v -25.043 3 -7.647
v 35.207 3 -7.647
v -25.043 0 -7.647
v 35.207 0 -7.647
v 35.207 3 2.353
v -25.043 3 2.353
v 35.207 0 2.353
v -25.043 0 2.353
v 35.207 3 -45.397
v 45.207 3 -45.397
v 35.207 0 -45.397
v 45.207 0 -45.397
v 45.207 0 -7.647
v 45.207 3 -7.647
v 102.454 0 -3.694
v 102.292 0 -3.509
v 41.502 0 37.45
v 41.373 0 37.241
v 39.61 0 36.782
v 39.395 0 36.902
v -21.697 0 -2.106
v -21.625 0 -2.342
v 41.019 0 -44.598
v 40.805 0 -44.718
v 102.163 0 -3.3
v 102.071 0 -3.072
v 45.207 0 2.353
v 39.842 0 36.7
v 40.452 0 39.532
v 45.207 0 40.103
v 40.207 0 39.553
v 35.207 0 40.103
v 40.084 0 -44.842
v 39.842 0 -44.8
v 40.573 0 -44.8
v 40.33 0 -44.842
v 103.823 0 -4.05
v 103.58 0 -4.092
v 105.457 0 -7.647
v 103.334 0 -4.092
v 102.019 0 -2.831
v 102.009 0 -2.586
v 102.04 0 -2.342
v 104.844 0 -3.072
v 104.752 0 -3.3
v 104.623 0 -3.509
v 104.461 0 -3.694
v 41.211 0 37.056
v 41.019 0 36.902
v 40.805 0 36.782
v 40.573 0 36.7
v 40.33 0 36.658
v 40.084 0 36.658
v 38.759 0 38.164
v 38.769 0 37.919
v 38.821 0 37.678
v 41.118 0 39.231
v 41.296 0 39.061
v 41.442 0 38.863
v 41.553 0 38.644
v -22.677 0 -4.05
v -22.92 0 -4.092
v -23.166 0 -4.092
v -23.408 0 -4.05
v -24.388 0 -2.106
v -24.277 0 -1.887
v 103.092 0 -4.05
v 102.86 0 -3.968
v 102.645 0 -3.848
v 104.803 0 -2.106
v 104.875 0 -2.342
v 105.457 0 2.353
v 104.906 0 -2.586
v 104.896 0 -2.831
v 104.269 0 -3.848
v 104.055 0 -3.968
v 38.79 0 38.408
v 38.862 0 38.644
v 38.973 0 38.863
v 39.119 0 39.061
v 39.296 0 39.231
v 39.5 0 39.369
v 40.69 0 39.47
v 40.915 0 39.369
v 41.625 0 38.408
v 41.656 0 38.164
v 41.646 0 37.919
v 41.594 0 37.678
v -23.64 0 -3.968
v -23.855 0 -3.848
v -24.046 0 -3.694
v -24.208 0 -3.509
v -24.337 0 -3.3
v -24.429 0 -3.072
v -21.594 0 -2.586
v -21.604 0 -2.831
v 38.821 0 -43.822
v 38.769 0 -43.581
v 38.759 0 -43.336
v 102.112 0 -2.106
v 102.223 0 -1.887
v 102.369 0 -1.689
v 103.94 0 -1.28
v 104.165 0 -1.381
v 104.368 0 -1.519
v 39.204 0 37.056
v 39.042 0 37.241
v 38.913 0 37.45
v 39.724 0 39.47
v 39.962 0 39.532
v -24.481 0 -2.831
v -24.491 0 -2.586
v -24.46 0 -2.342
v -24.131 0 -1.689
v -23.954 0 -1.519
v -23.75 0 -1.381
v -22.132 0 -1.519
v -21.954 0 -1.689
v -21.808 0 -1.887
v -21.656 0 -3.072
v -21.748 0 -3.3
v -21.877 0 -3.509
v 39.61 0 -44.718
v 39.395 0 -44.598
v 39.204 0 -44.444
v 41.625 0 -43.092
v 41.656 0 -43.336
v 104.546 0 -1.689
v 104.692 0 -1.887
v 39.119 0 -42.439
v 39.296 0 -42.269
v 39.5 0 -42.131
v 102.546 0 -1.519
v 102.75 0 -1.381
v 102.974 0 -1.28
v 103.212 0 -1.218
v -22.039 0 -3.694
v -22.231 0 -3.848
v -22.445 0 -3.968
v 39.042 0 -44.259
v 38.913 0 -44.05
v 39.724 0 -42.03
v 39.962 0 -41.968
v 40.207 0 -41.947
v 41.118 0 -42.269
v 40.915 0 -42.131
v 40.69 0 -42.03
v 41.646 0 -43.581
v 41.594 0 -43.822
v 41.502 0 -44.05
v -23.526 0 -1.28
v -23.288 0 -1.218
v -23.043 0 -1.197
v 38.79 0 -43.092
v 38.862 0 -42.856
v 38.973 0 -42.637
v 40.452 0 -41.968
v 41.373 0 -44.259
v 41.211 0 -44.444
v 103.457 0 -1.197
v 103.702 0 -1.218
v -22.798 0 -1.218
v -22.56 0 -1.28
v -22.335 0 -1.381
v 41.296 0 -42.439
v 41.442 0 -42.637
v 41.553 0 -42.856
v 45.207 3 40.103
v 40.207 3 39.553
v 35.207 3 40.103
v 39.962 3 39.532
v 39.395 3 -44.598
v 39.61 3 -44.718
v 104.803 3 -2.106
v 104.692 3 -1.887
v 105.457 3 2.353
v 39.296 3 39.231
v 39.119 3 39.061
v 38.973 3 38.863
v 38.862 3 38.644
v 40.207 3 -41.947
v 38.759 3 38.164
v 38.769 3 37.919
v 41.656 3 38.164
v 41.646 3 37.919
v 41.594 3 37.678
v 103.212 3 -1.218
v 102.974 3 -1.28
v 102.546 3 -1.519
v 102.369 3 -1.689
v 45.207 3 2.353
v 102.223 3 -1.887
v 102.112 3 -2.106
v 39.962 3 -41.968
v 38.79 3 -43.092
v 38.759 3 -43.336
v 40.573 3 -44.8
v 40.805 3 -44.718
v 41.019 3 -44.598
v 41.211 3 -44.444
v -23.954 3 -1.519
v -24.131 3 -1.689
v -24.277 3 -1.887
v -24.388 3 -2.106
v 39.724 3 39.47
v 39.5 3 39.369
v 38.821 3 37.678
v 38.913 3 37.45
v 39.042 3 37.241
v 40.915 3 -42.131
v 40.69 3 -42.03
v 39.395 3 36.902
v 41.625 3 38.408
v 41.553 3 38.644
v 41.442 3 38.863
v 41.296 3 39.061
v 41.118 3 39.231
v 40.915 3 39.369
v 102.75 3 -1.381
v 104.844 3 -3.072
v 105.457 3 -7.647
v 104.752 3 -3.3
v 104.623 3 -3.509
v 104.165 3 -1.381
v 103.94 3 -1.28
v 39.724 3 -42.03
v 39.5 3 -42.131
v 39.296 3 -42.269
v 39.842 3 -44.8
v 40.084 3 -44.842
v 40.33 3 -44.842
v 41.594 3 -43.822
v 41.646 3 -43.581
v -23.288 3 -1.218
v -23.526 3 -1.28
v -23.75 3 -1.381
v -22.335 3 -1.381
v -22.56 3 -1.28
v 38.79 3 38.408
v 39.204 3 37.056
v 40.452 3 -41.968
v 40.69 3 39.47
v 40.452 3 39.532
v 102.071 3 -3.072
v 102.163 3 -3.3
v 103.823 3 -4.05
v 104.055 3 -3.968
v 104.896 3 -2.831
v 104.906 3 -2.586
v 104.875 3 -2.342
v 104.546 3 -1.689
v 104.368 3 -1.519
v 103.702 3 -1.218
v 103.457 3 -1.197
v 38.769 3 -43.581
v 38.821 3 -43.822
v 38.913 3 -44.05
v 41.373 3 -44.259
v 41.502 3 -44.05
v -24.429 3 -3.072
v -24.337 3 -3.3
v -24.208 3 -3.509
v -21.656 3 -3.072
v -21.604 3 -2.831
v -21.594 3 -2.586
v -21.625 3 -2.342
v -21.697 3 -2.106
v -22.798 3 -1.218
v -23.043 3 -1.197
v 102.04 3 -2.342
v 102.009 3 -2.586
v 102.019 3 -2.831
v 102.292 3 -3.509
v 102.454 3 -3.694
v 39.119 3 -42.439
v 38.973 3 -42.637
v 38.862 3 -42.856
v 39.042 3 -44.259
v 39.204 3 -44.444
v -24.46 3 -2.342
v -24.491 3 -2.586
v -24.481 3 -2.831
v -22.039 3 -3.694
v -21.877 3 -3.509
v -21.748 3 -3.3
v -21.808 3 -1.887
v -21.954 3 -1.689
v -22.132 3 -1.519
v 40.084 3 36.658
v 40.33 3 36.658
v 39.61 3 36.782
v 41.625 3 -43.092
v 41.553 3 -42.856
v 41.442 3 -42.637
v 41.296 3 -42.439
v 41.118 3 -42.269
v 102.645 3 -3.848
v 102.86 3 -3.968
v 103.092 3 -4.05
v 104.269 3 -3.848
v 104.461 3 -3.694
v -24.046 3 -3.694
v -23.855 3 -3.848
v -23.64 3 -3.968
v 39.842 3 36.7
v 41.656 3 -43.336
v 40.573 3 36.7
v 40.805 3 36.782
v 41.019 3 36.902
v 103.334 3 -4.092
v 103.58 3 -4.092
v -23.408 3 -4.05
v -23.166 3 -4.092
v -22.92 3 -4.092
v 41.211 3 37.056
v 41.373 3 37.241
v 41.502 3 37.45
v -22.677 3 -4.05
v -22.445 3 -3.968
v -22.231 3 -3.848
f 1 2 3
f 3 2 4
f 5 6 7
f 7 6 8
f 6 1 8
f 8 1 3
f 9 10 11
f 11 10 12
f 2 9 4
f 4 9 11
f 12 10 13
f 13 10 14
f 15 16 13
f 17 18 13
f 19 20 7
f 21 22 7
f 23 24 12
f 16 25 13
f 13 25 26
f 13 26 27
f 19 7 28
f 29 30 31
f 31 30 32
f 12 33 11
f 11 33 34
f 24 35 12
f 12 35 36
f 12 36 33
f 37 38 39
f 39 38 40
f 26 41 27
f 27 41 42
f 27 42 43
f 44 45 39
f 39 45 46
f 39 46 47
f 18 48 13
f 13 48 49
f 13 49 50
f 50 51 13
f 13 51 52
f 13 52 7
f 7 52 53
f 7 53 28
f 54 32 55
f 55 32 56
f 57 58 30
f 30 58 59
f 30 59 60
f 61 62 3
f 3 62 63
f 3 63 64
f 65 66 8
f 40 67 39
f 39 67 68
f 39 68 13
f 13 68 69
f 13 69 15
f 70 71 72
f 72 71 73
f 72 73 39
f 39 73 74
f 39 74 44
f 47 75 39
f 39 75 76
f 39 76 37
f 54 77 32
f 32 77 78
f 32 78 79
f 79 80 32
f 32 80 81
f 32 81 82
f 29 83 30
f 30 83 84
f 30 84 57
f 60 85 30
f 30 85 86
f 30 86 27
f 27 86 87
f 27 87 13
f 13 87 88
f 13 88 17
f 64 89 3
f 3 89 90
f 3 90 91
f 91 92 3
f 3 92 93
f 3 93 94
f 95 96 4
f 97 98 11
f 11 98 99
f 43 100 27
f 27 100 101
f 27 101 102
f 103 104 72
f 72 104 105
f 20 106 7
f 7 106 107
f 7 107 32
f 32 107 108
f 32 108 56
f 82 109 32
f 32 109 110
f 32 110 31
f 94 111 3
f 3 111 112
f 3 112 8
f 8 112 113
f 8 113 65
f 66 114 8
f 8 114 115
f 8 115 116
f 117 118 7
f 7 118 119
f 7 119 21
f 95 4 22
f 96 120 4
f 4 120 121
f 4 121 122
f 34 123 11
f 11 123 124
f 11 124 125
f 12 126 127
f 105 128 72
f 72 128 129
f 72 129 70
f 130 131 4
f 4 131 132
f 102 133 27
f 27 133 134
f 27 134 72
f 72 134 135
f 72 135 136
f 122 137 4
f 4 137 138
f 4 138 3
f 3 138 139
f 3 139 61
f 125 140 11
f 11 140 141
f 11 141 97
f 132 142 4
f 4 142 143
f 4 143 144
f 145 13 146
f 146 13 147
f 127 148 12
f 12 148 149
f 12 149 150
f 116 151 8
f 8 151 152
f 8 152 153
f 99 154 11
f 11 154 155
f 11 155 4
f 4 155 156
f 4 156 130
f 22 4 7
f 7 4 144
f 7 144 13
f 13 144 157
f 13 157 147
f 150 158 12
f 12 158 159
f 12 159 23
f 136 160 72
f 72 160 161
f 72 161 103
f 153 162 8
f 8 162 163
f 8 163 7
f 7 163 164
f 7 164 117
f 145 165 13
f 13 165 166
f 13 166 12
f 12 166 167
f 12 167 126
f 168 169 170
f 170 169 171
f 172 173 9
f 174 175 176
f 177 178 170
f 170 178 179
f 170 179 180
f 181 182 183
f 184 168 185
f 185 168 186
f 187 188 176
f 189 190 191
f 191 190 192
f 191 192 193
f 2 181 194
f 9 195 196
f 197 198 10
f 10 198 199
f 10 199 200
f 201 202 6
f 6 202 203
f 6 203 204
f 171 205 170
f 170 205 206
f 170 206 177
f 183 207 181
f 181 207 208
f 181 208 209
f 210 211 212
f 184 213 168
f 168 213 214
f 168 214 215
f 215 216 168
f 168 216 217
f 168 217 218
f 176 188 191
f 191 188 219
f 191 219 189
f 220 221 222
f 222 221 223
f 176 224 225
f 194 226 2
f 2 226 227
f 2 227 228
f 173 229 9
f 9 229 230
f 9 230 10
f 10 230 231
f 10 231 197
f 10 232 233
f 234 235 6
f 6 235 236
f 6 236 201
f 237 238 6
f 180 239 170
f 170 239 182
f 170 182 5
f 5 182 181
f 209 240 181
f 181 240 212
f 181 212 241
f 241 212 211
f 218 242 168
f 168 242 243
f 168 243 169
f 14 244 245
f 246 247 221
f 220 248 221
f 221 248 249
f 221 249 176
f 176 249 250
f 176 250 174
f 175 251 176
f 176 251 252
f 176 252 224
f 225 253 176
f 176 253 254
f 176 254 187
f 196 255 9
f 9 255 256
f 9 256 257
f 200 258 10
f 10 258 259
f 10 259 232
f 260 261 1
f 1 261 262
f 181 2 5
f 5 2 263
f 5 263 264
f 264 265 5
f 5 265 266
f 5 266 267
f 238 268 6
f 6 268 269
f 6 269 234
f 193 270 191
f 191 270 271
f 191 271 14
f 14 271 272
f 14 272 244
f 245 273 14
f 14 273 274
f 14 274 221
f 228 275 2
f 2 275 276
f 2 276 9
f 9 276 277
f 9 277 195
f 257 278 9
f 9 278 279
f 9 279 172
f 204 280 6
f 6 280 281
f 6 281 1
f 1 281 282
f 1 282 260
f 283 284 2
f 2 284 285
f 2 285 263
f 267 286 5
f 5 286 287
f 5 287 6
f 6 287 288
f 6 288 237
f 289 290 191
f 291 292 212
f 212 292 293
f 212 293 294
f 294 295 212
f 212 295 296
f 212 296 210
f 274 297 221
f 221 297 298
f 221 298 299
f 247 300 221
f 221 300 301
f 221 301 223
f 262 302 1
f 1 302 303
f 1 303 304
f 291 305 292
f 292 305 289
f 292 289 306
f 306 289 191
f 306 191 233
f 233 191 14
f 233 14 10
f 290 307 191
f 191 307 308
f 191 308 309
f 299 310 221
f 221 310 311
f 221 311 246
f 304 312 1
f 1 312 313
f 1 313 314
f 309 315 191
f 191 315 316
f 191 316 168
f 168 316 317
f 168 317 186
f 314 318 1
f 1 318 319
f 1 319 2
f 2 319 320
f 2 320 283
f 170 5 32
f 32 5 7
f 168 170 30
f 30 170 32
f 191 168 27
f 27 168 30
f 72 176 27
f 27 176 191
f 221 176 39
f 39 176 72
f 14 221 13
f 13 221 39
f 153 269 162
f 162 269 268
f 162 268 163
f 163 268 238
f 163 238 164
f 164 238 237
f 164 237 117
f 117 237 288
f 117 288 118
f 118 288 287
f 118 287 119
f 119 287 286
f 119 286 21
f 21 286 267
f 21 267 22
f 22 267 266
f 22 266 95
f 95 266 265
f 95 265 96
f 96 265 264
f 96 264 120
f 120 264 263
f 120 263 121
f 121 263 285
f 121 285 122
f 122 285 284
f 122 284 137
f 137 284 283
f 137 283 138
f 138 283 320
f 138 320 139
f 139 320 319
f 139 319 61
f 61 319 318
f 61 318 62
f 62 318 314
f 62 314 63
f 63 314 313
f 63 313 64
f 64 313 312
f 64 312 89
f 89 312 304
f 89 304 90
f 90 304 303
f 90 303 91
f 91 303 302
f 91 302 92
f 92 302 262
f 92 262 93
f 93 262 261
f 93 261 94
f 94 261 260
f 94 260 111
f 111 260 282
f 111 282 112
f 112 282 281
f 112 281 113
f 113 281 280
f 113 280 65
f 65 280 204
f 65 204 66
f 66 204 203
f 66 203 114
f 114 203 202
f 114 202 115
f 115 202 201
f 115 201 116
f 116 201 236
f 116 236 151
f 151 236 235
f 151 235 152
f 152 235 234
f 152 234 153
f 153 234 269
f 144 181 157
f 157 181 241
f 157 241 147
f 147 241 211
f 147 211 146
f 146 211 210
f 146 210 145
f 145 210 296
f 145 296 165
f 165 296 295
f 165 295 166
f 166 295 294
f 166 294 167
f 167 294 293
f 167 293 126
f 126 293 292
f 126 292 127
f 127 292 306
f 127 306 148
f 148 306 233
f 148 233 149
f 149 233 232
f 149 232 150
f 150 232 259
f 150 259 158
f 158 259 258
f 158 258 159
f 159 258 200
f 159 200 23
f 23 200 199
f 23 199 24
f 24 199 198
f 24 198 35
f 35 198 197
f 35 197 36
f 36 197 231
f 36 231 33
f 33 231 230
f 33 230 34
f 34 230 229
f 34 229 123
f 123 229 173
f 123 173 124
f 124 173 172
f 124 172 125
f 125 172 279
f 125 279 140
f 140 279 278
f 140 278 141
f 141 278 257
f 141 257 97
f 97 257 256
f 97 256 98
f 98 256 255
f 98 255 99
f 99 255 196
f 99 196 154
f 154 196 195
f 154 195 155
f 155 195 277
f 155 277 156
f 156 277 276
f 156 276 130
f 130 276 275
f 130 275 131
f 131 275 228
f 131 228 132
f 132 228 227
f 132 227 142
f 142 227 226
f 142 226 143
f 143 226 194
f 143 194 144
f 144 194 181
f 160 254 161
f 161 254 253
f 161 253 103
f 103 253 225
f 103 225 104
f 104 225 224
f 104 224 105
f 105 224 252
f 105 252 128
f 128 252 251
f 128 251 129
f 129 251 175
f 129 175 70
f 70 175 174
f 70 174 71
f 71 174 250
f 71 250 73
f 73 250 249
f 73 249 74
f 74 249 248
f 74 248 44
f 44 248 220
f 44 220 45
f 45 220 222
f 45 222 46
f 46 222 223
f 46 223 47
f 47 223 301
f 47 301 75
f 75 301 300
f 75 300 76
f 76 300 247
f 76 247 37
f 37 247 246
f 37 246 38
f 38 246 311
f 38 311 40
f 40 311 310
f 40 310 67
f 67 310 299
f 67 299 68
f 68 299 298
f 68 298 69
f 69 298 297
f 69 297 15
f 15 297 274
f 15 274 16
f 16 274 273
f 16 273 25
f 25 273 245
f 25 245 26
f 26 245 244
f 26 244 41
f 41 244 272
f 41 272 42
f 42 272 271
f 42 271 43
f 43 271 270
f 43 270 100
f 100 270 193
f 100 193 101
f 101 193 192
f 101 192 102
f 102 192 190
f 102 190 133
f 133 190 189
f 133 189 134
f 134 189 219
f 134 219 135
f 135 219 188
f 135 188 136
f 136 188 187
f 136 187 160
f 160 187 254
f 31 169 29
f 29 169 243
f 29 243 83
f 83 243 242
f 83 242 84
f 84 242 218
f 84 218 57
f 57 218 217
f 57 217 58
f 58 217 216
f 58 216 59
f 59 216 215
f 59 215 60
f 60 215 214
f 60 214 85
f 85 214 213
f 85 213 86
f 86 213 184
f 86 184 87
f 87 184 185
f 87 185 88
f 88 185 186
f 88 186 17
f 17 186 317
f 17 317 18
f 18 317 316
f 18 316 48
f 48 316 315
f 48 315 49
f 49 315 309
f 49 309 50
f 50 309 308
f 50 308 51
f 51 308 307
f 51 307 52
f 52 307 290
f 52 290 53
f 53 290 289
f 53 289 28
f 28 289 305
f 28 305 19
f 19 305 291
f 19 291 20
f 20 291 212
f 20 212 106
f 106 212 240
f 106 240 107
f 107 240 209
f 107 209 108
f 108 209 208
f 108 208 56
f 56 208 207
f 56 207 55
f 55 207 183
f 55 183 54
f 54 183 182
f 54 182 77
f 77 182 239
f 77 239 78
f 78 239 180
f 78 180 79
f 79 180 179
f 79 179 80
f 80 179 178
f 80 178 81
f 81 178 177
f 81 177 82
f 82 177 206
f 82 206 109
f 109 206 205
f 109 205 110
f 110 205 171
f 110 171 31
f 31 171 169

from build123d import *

# Parameters (mm, degrees)
SKETCH1_W                  = 130.5
SKETCH1_H                  = 10
SKETCH1_W_2                = 10
SKETCH1_H_2                = 85.5
BOSS_EXTRUDE1_DEPTH        = 3
M2_5_CLEARANCE_HOLE1_D     = 2.9
M2_5_CLEARANCE_HOLE1_DEPTH = 3
M2_5_CLEARANCE_HOLE1_TIP   = 0.871247898
M2_5_CLEARANCE_HOLE2_D     = 2.9
M2_5_CLEARANCE_HOLE2_DEPTH = 3
M2_5_CLEARANCE_HOLE2_TIP   = 0.871247898
M2_5_CLEARANCE_HOLE3_D     = 2.9
M2_5_CLEARANCE_HOLE3_DEPTH = 3
M2_5_CLEARANCE_HOLE3_TIP   = 0.871247898
M2_5_CLEARANCE_HOLE4_D     = 2.9
M2_5_CLEARANCE_HOLE4_DEPTH = 3
M2_5_CLEARANCE_HOLE4_TIP   = 0.871247898


with BuildPart() as part:
    # Sketch1 → Boss-Extrude1 (new body)
    with BuildSketch(Plane(origin=(0, 0, 0), x_dir=(1, 0, 0), z_dir=(0, 1, 0))):
        with Locations((40.207417437, 2.647058824)):
            Rectangle(SKETCH1_W, SKETCH1_H)
        with Locations((40.207417437, 2.647058824)):
            Rectangle(SKETCH1_W_2, SKETCH1_H_2)
    extrude(amount=BOSS_EXTRUDE1_DEPTH)

    # M2.5 Clearance Hole1
    with Locations(Plane(origin=(0, 3, 0), x_dir=(1, 0, 0), z_dir=(0, 1, 0))):
        with Locations((-23.042582563, 2.647058824)):
            Hole(M2_5_CLEARANCE_HOLE1_D / 2, depth=M2_5_CLEARANCE_HOLE1_DEPTH)
            with Locations((0, 0, -(M2_5_CLEARANCE_HOLE1_DEPTH + M2_5_CLEARANCE_HOLE1_TIP / 2))):  # 118° drill point
                Cone(0, M2_5_CLEARANCE_HOLE1_D / 2, M2_5_CLEARANCE_HOLE1_TIP, mode=Mode.SUBTRACT)

    # M2.5 Clearance Hole2
    with Locations(Plane(origin=(0, 3, 0), x_dir=(1, 0, 0), z_dir=(0, 1, 0))):
        with Locations((40.207417437, 43.397058824)):
            Hole(M2_5_CLEARANCE_HOLE2_D / 2, depth=M2_5_CLEARANCE_HOLE2_DEPTH)
            with Locations((0, 0, -(M2_5_CLEARANCE_HOLE2_DEPTH + M2_5_CLEARANCE_HOLE2_TIP / 2))):  # 118° drill point
                Cone(0, M2_5_CLEARANCE_HOLE2_D / 2, M2_5_CLEARANCE_HOLE2_TIP, mode=Mode.SUBTRACT)

    # M2.5 Clearance Hole3
    with Locations(Plane(origin=(0, 3, 0), x_dir=(1, 0, 0), z_dir=(0, 1, 0))):
        with Locations((103.457417437, 2.647058824)):
            Hole(M2_5_CLEARANCE_HOLE3_D / 2, depth=M2_5_CLEARANCE_HOLE3_DEPTH)
            with Locations((0, 0, -(M2_5_CLEARANCE_HOLE3_DEPTH + M2_5_CLEARANCE_HOLE3_TIP / 2))):  # 118° drill point
                Cone(0, M2_5_CLEARANCE_HOLE3_D / 2, M2_5_CLEARANCE_HOLE3_TIP, mode=Mode.SUBTRACT)

    # M2.5 Clearance Hole4
    with Locations(Plane(origin=(0, 3, 0), x_dir=(1, 0, 0), z_dir=(0, 1, 0))):
        with Locations((40.207417437, -38.102941176)):
            Hole(M2_5_CLEARANCE_HOLE4_D / 2, depth=M2_5_CLEARANCE_HOLE4_DEPTH)
            with Locations((0, 0, -(M2_5_CLEARANCE_HOLE4_DEPTH + M2_5_CLEARANCE_HOLE4_TIP / 2))):  # 118° drill point
                Cone(0, M2_5_CLEARANCE_HOLE4_D / 2, M2_5_CLEARANCE_HOLE4_TIP, mode=Mode.SUBTRACT)


solid = part.part
